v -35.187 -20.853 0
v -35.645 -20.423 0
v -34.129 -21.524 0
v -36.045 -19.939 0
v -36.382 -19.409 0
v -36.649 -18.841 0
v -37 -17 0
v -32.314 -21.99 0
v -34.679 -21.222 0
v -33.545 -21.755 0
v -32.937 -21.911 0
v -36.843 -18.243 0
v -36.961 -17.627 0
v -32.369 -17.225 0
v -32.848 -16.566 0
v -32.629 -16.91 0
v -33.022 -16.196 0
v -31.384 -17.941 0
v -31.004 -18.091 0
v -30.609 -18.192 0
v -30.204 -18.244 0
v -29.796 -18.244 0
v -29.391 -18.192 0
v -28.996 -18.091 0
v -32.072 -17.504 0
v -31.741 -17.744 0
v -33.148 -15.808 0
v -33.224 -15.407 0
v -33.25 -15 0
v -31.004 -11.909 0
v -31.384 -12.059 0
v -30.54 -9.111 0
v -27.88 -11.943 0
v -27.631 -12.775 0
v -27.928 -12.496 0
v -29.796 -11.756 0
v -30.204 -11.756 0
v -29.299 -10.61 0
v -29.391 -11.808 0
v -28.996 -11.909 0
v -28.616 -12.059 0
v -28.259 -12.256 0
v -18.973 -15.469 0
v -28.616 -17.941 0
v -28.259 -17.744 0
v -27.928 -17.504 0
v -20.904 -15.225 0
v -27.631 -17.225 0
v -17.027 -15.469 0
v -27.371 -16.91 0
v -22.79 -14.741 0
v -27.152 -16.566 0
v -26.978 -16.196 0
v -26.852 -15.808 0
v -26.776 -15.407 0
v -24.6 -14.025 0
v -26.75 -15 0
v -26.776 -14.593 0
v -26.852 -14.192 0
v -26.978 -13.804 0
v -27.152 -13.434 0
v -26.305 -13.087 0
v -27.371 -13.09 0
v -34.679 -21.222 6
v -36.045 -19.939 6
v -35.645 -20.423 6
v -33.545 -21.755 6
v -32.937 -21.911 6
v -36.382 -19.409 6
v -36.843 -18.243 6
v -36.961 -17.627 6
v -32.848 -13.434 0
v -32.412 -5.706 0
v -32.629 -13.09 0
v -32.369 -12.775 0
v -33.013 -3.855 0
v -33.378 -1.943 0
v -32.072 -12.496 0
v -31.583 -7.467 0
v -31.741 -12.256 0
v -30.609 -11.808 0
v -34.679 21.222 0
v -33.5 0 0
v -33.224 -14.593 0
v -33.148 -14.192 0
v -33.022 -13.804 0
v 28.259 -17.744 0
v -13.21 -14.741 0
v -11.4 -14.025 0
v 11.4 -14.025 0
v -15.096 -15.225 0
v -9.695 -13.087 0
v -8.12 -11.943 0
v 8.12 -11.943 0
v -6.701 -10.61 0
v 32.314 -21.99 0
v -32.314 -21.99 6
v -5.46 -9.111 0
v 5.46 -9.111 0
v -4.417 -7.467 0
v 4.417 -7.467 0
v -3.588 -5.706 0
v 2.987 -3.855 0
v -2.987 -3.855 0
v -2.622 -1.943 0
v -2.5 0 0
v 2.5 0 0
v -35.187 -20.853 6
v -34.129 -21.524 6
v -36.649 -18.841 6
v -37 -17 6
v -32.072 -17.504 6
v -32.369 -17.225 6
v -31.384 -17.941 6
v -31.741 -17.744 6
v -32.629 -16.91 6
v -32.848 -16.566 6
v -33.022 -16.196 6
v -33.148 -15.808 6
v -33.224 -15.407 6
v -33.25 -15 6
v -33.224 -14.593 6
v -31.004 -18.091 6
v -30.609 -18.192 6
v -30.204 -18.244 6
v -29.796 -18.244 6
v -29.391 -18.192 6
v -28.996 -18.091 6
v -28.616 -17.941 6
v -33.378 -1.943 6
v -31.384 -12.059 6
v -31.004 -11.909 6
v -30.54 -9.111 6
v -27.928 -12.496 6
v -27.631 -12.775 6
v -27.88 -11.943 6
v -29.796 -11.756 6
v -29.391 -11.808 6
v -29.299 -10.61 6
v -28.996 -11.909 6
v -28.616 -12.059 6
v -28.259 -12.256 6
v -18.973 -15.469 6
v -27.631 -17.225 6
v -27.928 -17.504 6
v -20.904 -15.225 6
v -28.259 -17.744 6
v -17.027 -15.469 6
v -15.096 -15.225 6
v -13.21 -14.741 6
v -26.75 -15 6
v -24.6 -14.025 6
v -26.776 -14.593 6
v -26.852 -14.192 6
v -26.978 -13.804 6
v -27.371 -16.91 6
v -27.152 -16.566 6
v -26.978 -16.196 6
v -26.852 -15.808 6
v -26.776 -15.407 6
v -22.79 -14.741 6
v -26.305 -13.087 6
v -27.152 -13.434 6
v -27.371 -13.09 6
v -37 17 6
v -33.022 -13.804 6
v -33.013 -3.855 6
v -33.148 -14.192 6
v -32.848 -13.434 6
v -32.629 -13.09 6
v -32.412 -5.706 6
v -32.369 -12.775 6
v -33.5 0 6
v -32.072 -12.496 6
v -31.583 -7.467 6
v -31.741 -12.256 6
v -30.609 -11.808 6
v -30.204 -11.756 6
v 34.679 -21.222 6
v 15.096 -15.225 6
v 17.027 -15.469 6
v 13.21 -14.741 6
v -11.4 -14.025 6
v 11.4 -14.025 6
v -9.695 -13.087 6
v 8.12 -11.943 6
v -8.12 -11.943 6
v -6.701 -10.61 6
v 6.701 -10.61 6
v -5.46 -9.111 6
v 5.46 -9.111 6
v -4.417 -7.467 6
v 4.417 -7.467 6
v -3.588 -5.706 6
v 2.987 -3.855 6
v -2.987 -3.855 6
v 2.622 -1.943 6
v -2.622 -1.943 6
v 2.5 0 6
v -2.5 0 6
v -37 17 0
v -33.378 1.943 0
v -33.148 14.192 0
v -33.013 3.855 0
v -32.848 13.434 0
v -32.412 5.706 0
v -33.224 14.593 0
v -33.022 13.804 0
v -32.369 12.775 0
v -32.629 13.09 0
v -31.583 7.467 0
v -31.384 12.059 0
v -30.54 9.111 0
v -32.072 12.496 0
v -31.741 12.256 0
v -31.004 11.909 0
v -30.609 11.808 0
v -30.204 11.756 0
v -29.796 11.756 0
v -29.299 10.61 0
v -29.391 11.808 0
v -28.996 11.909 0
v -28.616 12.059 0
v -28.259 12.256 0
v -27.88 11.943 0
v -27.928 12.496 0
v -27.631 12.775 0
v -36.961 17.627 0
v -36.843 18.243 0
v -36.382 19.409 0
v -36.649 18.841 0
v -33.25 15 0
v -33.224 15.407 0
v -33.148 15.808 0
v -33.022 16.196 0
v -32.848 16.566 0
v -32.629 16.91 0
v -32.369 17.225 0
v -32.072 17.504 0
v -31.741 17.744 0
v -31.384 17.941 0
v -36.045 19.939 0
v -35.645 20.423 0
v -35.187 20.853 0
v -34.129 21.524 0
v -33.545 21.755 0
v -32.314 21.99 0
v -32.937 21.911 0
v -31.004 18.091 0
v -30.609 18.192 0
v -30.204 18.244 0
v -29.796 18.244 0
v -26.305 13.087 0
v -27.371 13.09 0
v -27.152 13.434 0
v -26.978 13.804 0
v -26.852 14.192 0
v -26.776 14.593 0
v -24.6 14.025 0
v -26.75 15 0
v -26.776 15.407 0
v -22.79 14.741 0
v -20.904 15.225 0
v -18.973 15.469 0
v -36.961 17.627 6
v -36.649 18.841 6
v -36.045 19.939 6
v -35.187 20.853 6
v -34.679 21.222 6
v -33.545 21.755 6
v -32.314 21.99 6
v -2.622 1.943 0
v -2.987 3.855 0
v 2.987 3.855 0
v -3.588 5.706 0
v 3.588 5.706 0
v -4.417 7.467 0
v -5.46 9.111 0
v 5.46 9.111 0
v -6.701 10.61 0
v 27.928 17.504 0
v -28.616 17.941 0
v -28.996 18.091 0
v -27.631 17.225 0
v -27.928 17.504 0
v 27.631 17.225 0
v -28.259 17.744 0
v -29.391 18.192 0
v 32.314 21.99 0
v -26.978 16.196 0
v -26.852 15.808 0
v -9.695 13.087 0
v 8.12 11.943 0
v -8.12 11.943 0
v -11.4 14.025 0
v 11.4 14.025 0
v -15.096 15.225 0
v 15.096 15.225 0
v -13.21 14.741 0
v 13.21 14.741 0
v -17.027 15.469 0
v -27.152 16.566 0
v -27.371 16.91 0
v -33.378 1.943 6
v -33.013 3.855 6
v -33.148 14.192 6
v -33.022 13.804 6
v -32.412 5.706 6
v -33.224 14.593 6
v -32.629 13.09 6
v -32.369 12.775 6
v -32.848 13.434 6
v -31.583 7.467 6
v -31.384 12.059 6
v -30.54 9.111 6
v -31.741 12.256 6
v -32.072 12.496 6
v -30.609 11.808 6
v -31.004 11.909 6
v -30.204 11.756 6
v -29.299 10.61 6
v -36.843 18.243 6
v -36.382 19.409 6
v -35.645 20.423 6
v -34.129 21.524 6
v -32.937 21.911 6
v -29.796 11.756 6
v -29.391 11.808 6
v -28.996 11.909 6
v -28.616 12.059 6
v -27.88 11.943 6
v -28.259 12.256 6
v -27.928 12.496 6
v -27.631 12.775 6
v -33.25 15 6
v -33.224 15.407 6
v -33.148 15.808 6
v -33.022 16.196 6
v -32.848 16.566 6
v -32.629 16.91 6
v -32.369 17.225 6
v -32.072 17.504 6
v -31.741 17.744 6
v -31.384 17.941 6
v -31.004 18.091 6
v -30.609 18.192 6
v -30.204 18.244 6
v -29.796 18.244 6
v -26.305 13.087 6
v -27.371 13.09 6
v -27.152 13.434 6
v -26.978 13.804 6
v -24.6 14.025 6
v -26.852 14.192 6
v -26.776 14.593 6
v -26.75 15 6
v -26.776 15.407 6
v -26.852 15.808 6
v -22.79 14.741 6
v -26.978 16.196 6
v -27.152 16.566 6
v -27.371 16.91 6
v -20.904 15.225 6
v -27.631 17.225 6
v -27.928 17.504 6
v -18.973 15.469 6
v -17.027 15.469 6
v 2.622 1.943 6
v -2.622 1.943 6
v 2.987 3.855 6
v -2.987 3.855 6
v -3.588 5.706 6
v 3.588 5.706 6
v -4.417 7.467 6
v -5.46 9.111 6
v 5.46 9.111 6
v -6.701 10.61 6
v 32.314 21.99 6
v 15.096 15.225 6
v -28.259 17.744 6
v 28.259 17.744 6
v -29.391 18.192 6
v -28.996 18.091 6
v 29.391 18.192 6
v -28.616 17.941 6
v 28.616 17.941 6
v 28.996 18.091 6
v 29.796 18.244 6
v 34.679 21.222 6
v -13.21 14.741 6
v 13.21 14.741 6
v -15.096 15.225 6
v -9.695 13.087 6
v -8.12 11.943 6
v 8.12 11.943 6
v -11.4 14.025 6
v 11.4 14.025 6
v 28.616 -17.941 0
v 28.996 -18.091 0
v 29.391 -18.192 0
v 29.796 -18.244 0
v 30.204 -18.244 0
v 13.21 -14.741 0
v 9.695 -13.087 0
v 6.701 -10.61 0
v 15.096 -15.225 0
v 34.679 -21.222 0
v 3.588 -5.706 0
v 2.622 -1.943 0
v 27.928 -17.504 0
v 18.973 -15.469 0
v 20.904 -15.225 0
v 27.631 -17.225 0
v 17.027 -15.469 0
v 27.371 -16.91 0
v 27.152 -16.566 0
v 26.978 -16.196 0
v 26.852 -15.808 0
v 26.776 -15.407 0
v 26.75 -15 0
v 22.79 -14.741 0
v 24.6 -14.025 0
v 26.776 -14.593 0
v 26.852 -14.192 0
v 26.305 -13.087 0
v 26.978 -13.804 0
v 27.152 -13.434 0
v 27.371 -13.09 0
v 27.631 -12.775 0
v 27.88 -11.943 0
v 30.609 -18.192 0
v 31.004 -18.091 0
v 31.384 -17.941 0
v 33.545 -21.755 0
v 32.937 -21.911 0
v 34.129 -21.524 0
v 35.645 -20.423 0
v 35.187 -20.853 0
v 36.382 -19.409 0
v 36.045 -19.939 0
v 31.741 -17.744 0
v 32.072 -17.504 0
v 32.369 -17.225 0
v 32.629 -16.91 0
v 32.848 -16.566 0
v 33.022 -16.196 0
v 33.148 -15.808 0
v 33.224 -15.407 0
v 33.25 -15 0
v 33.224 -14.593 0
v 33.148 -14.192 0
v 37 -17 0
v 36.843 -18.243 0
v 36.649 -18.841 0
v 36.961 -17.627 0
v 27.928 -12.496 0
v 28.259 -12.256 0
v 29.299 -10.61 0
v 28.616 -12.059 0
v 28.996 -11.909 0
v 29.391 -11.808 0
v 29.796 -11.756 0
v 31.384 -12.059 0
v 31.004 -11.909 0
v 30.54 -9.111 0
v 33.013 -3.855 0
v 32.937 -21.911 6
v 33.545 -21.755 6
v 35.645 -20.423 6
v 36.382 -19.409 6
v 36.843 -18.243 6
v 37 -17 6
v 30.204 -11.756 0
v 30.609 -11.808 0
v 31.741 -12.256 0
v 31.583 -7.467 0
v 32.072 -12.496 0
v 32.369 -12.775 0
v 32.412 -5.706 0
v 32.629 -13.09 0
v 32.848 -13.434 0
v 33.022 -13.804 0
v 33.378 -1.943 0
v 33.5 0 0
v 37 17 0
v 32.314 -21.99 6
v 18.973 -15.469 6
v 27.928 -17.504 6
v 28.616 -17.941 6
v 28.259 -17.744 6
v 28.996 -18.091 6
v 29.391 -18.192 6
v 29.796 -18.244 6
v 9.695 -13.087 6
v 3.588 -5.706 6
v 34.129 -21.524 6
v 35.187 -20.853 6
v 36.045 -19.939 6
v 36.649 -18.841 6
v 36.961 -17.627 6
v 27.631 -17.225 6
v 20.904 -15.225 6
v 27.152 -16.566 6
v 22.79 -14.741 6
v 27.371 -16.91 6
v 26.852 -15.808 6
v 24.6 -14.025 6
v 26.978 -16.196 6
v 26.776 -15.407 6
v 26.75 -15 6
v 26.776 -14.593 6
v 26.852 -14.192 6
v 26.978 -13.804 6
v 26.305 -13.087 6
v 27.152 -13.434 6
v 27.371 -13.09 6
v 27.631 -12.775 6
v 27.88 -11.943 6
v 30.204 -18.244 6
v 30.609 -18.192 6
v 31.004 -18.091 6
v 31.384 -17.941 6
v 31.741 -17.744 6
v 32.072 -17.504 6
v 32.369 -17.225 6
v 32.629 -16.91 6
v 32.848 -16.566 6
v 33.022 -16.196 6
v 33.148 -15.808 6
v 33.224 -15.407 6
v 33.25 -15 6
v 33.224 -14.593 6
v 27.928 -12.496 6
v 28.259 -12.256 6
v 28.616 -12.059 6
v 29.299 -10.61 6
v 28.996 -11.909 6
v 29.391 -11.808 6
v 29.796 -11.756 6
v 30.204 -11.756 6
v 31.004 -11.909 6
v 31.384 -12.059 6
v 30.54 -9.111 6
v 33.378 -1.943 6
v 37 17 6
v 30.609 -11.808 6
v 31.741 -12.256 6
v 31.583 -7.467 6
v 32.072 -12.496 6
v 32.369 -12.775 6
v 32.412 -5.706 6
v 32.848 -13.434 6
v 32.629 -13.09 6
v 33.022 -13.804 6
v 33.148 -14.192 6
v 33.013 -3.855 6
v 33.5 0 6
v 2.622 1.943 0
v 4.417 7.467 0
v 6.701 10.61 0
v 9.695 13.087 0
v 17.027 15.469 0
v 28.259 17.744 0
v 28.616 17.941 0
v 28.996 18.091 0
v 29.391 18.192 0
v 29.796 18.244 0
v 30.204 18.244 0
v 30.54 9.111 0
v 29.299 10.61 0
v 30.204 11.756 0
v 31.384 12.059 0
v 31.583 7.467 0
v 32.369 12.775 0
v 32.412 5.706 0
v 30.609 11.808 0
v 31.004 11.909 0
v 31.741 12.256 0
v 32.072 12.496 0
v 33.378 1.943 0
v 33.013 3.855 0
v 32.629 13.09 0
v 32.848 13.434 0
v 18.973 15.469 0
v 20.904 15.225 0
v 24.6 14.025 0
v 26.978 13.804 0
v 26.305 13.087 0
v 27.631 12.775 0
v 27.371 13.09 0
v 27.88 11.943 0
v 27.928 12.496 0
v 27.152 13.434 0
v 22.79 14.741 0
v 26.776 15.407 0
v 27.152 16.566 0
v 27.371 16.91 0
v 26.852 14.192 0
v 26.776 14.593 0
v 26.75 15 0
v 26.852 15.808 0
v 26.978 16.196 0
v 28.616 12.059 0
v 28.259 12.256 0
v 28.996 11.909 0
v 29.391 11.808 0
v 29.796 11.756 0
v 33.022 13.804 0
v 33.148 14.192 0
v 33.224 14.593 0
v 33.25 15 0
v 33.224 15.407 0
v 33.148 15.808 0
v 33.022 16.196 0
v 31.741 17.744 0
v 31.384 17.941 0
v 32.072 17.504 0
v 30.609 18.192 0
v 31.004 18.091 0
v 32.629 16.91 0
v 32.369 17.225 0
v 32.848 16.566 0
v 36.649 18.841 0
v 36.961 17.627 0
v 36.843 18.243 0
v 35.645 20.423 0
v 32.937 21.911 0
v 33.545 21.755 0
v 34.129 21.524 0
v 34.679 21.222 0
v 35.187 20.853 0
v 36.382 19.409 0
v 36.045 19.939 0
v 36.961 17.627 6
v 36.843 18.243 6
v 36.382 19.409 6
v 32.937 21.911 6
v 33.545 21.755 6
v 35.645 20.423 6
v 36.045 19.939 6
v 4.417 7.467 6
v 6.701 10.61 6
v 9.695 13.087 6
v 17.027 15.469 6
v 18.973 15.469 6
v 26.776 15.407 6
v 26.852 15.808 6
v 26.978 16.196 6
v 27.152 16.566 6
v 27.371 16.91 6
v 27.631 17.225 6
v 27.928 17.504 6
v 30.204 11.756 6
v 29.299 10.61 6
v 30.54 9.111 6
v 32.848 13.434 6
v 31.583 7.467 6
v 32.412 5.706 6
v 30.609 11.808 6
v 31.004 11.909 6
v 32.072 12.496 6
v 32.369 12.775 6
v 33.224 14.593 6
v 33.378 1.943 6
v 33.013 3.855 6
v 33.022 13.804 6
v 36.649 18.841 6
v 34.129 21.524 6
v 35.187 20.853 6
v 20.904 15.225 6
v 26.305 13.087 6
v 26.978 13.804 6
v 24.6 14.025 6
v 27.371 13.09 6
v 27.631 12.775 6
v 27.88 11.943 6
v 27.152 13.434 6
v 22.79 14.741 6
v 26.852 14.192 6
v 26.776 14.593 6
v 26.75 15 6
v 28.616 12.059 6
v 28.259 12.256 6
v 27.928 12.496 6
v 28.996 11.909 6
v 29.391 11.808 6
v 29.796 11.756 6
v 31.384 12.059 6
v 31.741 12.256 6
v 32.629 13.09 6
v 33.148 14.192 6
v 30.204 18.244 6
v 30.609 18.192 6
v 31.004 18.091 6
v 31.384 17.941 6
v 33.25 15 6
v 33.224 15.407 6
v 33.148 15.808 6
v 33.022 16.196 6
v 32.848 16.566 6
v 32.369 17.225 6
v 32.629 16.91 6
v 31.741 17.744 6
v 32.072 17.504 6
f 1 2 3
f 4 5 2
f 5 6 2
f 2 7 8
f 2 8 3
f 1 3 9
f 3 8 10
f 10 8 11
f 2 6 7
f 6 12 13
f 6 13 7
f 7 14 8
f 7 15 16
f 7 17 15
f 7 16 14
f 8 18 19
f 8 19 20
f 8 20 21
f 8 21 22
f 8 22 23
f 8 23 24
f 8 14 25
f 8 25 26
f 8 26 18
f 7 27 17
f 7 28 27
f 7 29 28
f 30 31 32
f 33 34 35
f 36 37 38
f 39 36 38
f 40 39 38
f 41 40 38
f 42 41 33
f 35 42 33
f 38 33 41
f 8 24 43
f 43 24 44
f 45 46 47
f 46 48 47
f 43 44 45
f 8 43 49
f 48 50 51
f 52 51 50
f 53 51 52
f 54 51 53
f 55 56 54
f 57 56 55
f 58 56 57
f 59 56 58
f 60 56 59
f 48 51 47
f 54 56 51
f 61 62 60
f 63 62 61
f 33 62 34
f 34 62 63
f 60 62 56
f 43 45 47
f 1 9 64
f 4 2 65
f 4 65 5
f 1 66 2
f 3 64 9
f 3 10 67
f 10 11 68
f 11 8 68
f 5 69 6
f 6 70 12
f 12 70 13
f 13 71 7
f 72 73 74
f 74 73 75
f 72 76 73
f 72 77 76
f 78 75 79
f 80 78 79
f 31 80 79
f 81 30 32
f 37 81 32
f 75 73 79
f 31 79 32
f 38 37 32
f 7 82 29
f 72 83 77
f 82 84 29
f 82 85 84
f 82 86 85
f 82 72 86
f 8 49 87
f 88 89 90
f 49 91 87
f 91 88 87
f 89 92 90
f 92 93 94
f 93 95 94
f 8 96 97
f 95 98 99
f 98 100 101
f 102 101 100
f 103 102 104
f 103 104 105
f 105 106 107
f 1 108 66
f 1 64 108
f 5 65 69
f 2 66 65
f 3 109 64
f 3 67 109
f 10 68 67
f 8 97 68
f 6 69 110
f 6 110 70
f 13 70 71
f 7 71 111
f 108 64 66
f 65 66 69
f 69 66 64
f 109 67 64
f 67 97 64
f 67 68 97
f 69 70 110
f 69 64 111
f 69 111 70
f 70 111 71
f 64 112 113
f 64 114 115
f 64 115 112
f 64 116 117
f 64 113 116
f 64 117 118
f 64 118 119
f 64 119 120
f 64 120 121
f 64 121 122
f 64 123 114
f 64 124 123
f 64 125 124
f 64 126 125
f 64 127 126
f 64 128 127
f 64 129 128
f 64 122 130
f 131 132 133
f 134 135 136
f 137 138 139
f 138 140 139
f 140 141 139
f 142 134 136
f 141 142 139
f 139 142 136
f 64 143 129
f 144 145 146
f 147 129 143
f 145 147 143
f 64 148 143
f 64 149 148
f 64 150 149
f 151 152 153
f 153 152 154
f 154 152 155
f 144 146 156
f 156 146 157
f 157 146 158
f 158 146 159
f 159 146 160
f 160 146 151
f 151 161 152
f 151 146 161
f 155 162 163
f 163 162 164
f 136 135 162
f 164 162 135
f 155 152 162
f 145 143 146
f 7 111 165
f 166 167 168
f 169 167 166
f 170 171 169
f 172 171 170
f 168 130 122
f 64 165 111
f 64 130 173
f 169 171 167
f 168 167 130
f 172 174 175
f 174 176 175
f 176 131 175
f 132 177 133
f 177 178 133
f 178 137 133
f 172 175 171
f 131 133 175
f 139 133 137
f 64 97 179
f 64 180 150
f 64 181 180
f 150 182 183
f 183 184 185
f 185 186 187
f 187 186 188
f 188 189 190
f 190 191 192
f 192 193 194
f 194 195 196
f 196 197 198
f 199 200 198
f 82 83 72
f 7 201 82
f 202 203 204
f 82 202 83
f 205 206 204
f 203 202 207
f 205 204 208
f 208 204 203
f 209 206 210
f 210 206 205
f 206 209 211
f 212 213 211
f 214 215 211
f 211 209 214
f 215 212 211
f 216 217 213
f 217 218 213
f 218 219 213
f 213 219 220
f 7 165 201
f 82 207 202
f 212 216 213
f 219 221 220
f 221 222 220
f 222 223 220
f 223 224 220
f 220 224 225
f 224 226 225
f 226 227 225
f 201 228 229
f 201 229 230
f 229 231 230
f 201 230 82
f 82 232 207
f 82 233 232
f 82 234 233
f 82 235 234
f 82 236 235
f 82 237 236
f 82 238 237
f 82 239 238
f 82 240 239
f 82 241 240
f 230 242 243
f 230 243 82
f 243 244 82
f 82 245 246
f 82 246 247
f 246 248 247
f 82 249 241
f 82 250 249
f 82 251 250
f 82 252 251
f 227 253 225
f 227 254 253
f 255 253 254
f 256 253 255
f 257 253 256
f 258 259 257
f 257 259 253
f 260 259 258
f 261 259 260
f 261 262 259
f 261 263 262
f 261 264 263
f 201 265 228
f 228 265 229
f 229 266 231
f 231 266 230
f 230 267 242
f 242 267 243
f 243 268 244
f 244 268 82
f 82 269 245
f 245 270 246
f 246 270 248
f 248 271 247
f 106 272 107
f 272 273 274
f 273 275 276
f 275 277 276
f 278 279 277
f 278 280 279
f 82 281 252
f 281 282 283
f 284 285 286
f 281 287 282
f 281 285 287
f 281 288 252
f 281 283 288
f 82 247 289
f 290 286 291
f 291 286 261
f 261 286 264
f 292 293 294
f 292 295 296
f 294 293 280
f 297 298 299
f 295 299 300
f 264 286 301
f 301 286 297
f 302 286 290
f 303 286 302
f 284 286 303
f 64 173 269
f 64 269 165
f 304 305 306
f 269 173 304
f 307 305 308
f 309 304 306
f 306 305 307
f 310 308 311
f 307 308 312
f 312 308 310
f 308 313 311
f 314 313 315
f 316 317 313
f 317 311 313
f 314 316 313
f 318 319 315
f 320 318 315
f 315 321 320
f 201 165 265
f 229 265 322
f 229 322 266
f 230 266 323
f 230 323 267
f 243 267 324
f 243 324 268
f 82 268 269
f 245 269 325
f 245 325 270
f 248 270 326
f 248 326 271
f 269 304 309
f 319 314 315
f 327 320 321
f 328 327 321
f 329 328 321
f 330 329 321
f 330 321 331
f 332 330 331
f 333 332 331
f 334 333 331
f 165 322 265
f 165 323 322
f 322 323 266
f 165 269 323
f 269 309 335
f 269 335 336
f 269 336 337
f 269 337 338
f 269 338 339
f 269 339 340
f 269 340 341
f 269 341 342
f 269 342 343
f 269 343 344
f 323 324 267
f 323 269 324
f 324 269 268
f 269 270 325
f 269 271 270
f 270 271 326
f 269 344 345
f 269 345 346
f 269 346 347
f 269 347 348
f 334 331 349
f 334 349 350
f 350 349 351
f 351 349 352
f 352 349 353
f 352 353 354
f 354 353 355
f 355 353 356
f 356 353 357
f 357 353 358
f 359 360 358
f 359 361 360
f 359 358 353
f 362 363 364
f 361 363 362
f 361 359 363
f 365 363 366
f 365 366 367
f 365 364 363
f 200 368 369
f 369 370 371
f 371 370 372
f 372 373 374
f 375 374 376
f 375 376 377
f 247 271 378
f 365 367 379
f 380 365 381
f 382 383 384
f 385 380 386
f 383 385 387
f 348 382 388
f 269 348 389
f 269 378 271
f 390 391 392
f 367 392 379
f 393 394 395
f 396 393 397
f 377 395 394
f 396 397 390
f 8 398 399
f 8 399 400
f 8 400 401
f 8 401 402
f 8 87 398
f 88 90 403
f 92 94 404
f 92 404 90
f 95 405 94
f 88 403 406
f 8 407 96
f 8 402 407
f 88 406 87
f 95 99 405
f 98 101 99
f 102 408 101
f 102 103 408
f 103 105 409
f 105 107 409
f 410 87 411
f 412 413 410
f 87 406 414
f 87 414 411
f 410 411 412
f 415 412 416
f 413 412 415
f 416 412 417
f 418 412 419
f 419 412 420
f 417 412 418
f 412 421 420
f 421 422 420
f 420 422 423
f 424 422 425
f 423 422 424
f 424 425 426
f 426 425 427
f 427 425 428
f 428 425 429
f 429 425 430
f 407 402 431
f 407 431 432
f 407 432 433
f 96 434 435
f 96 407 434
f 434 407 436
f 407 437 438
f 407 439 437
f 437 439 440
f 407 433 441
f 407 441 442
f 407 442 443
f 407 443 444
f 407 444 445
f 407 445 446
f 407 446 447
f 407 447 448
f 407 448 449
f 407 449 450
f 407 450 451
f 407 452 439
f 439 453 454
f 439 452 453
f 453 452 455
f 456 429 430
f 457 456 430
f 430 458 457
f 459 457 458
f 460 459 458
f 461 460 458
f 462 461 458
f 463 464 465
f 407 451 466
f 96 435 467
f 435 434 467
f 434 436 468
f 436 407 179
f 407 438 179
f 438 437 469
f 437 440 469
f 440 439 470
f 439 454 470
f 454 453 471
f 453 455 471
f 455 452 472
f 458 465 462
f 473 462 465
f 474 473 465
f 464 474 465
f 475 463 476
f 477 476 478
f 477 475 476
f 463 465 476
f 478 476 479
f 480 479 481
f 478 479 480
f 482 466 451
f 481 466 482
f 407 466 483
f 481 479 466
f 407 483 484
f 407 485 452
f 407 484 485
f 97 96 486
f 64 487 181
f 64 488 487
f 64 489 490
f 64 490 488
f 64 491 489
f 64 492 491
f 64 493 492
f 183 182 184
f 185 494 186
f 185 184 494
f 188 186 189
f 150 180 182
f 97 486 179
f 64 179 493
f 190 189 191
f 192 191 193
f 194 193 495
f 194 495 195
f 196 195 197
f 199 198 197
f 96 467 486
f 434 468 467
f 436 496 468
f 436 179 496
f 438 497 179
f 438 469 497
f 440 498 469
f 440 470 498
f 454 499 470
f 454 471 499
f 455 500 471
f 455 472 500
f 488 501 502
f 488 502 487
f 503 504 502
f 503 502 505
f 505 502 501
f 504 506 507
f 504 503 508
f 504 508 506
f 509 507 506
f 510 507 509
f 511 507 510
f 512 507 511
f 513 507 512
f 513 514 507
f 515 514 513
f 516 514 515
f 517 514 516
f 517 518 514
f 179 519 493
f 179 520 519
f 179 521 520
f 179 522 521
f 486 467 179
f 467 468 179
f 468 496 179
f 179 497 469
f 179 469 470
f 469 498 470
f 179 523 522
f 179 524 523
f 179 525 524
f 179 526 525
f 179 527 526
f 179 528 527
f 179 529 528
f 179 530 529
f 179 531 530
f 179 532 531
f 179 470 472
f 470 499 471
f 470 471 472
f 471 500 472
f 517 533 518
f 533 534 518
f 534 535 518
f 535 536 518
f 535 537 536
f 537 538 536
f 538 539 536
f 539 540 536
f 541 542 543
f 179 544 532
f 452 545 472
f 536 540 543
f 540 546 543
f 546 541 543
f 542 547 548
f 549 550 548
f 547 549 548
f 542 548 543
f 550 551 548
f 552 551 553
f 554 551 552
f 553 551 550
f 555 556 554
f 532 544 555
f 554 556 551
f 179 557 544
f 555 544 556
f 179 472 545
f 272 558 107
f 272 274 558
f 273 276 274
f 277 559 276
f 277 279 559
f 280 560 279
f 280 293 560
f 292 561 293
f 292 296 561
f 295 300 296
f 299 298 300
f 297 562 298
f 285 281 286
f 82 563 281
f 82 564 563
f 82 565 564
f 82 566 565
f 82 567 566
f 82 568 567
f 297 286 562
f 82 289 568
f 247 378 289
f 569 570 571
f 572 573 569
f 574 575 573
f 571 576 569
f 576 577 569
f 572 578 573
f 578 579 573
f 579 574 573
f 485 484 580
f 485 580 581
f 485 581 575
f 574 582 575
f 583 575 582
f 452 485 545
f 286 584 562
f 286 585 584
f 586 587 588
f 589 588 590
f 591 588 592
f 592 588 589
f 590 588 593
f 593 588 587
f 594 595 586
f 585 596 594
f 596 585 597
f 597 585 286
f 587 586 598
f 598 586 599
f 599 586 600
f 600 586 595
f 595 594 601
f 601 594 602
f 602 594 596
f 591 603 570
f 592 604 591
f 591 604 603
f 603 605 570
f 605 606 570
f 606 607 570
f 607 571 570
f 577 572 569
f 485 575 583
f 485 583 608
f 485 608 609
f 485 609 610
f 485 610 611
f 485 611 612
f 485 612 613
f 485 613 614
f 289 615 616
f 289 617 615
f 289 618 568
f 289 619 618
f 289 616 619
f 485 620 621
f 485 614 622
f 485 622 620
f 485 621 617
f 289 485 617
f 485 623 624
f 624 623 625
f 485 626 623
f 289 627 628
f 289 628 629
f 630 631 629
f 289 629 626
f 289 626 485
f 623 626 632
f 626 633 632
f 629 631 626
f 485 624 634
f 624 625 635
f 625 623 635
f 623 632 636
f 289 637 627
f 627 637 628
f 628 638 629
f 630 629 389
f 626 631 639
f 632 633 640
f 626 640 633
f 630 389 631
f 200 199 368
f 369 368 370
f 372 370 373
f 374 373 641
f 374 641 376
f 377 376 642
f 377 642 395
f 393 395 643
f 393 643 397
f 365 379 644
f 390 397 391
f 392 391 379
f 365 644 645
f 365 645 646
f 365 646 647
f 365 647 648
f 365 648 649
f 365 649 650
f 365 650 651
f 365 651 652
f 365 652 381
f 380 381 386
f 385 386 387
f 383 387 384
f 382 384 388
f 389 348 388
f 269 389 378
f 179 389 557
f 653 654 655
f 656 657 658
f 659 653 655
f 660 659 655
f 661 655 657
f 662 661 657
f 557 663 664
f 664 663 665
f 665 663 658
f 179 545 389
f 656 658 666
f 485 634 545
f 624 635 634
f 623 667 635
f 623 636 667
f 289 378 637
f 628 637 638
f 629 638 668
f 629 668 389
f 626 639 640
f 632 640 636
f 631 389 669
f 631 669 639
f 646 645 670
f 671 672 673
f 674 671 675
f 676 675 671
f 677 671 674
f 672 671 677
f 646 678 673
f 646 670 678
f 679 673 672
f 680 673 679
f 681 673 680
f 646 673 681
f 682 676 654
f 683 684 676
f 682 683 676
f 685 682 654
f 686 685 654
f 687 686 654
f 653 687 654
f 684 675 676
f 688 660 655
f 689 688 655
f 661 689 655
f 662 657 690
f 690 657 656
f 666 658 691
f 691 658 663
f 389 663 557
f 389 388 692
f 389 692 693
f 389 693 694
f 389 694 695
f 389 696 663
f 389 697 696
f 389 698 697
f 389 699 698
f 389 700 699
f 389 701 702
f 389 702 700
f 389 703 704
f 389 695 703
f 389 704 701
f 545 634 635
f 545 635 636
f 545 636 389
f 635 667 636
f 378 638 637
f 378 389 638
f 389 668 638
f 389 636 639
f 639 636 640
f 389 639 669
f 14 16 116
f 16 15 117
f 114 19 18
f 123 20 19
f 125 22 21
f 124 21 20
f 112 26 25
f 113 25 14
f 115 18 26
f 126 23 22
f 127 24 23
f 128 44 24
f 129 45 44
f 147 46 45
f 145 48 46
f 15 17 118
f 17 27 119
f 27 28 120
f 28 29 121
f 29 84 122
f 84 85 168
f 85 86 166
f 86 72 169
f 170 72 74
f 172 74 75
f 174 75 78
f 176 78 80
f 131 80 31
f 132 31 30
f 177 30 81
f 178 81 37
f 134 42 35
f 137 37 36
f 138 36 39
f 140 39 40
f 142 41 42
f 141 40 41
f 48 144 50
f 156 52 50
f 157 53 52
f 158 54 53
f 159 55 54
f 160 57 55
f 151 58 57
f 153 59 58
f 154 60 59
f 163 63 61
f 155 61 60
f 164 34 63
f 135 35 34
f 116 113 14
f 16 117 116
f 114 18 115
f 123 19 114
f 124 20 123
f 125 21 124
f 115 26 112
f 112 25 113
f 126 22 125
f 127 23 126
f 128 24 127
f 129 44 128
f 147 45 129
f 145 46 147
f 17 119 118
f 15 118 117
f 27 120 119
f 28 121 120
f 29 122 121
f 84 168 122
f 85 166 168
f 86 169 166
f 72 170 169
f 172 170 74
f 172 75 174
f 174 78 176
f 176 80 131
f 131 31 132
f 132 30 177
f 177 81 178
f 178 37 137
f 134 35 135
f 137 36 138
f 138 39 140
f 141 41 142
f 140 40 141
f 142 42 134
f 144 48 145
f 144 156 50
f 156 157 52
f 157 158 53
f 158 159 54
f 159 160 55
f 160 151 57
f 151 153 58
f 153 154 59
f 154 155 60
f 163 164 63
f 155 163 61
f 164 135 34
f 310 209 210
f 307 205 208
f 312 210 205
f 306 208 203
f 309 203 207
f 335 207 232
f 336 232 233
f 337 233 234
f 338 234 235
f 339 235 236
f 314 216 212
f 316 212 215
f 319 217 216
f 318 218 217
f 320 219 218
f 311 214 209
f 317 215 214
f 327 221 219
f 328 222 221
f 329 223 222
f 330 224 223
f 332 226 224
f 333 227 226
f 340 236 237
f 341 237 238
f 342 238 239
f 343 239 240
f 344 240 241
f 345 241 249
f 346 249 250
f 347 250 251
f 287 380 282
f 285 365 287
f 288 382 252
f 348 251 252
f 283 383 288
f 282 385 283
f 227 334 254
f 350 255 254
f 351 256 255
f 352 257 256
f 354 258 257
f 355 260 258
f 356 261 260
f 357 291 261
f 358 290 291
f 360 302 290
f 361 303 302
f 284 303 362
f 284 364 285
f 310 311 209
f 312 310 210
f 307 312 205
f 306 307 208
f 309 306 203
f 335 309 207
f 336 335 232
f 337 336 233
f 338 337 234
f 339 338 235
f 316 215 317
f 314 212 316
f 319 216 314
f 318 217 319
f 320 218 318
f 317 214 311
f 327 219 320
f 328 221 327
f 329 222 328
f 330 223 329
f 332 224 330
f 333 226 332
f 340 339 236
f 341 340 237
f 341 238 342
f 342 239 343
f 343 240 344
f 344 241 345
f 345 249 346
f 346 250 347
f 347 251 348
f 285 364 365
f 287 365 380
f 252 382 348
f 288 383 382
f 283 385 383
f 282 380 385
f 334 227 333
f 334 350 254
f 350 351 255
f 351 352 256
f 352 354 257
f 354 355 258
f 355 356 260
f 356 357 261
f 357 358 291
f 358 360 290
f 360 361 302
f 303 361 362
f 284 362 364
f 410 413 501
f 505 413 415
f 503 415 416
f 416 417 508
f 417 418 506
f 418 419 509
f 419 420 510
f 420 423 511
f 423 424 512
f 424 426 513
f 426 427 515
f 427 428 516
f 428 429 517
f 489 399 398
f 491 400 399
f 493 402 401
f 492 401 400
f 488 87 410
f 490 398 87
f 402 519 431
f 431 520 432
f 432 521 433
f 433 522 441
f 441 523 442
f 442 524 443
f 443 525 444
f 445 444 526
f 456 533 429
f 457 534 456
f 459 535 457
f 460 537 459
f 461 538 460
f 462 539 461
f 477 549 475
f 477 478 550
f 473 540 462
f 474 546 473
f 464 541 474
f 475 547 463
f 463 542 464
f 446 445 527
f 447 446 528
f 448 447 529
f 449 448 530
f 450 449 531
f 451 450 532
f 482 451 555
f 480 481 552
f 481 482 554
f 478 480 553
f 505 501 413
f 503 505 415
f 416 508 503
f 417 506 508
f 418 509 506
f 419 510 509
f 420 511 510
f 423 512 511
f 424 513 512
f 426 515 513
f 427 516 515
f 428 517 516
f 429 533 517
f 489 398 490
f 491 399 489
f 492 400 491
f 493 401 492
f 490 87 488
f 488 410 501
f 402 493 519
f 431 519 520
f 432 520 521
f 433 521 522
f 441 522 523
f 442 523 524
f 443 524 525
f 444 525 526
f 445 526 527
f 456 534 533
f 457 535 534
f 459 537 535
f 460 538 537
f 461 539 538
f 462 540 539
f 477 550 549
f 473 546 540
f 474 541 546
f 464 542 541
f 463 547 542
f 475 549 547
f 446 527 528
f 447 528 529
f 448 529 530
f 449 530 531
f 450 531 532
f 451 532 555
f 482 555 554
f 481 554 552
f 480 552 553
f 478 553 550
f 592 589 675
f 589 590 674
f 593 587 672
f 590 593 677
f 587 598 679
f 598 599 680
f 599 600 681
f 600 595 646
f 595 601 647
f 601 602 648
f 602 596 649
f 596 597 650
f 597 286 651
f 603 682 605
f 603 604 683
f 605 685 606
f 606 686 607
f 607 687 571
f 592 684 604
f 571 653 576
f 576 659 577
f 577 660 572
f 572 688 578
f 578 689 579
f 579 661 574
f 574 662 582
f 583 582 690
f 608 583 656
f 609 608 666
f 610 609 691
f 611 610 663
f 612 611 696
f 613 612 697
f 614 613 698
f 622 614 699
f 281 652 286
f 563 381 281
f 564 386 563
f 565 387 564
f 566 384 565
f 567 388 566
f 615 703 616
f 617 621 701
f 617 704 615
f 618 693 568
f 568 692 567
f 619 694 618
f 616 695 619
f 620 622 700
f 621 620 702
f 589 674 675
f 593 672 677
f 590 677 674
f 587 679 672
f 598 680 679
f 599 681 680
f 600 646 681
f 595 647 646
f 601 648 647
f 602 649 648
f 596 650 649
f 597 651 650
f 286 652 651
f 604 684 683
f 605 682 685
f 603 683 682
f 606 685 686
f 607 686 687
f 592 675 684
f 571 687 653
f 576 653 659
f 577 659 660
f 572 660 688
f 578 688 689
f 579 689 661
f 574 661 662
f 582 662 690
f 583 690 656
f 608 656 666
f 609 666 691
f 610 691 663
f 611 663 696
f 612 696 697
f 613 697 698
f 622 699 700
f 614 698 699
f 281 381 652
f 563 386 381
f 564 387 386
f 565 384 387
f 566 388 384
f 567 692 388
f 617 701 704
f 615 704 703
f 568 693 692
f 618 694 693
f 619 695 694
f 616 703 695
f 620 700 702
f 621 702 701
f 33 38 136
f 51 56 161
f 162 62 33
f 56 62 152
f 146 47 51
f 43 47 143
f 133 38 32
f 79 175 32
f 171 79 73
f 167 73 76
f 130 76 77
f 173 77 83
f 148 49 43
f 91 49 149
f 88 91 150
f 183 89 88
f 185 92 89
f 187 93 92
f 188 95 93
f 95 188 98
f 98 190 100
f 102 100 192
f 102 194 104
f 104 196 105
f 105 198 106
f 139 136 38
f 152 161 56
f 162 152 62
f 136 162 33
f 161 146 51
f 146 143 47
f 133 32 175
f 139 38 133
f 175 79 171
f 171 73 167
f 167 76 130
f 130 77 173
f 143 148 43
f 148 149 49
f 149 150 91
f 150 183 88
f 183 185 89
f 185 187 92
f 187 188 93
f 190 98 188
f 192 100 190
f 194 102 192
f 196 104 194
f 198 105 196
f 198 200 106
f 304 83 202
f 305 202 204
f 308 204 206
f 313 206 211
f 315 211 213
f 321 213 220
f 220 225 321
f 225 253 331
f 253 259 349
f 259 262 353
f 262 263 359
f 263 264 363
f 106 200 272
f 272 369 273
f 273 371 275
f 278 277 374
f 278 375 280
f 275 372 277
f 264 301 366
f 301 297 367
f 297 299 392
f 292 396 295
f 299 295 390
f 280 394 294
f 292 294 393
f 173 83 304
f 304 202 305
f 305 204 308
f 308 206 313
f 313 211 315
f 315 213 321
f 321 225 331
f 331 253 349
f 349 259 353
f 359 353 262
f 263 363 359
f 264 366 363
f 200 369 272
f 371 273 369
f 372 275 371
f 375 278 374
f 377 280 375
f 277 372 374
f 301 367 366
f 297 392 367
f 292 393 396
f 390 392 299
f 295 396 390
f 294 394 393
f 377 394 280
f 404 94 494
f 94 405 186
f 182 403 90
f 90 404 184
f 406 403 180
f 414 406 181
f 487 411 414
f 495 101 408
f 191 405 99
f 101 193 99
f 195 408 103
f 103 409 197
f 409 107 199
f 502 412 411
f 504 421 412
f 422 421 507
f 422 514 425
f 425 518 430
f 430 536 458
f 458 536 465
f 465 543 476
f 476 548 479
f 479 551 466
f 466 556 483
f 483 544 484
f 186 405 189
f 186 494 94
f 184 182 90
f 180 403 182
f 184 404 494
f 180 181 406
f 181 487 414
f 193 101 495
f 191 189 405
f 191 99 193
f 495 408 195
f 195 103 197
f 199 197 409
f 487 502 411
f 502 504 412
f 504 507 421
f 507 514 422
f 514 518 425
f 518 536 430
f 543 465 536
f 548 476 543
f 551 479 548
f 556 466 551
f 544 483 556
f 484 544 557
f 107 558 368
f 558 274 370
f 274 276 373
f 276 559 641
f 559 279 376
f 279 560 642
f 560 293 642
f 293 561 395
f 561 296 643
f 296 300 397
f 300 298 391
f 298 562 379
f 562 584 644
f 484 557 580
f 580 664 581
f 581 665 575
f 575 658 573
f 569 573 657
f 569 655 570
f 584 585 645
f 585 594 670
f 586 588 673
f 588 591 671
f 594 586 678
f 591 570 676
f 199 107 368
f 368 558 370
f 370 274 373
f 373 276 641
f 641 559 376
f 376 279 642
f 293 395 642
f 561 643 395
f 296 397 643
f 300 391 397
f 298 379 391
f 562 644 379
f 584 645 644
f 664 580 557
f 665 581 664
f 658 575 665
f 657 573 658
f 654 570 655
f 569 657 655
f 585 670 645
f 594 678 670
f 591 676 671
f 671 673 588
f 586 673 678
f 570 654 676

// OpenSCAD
$fn = 50;

difference() {
	union() {
		hull() {
			translate(v = [-32.0, 17.0, 0]) {
				cylinder(h = 6, r = 5);
			}
			translate(v = [32.0, 17.0, 0]) {
				cylinder(h = 6, r = 5);
			}
			translate(v = [-32.0, -17.0, 0]) {
				cylinder(h = 6, r = 5);
			}
			translate(v = [32.0, -17.0, 0]) {
				cylinder(h = 6, r = 5);
			}
		}
	}
	union() {
		translate(v = [-30.0, -15.0, -100.0]) {
			cylinder(h = 200, r = 3.25);
		}
		translate(v = [-30.0, 15.0, -100.0]) {
			cylinder(h = 200, r = 3.25);
		}
		translate(v = [30.0, -15.0, -100.0]) {
			cylinder(h = 200, r = 3.25);
		}
		translate(v = [30.0, 15.0, -100.0]) {
			cylinder(h = 200, r = 3.25);
		}
		translate(v = [-30.0, -15.0, -100.0]) {
			cylinder(h = 200, r = 1.8);
		}
		translate(v = [-30.0, 15.0, -100.0]) {
			cylinder(h = 200, r = 1.8);
		}
		translate(v = [30.0, -15.0, -100.0]) {
			cylinder(h = 200, r = 1.8);
		}
		translate(v = [30.0, 15.0, -100.0]) {
			cylinder(h = 200, r = 1.8);
		}
		translate(v = [-18.0, 0, 0.0]) {
			cylinder(h = 6, r = 15.5);
		}
		translate(v = [18.0, 0, 0.0]) {
			cylinder(h = 6, r = 15.5);
		}
	}
}
